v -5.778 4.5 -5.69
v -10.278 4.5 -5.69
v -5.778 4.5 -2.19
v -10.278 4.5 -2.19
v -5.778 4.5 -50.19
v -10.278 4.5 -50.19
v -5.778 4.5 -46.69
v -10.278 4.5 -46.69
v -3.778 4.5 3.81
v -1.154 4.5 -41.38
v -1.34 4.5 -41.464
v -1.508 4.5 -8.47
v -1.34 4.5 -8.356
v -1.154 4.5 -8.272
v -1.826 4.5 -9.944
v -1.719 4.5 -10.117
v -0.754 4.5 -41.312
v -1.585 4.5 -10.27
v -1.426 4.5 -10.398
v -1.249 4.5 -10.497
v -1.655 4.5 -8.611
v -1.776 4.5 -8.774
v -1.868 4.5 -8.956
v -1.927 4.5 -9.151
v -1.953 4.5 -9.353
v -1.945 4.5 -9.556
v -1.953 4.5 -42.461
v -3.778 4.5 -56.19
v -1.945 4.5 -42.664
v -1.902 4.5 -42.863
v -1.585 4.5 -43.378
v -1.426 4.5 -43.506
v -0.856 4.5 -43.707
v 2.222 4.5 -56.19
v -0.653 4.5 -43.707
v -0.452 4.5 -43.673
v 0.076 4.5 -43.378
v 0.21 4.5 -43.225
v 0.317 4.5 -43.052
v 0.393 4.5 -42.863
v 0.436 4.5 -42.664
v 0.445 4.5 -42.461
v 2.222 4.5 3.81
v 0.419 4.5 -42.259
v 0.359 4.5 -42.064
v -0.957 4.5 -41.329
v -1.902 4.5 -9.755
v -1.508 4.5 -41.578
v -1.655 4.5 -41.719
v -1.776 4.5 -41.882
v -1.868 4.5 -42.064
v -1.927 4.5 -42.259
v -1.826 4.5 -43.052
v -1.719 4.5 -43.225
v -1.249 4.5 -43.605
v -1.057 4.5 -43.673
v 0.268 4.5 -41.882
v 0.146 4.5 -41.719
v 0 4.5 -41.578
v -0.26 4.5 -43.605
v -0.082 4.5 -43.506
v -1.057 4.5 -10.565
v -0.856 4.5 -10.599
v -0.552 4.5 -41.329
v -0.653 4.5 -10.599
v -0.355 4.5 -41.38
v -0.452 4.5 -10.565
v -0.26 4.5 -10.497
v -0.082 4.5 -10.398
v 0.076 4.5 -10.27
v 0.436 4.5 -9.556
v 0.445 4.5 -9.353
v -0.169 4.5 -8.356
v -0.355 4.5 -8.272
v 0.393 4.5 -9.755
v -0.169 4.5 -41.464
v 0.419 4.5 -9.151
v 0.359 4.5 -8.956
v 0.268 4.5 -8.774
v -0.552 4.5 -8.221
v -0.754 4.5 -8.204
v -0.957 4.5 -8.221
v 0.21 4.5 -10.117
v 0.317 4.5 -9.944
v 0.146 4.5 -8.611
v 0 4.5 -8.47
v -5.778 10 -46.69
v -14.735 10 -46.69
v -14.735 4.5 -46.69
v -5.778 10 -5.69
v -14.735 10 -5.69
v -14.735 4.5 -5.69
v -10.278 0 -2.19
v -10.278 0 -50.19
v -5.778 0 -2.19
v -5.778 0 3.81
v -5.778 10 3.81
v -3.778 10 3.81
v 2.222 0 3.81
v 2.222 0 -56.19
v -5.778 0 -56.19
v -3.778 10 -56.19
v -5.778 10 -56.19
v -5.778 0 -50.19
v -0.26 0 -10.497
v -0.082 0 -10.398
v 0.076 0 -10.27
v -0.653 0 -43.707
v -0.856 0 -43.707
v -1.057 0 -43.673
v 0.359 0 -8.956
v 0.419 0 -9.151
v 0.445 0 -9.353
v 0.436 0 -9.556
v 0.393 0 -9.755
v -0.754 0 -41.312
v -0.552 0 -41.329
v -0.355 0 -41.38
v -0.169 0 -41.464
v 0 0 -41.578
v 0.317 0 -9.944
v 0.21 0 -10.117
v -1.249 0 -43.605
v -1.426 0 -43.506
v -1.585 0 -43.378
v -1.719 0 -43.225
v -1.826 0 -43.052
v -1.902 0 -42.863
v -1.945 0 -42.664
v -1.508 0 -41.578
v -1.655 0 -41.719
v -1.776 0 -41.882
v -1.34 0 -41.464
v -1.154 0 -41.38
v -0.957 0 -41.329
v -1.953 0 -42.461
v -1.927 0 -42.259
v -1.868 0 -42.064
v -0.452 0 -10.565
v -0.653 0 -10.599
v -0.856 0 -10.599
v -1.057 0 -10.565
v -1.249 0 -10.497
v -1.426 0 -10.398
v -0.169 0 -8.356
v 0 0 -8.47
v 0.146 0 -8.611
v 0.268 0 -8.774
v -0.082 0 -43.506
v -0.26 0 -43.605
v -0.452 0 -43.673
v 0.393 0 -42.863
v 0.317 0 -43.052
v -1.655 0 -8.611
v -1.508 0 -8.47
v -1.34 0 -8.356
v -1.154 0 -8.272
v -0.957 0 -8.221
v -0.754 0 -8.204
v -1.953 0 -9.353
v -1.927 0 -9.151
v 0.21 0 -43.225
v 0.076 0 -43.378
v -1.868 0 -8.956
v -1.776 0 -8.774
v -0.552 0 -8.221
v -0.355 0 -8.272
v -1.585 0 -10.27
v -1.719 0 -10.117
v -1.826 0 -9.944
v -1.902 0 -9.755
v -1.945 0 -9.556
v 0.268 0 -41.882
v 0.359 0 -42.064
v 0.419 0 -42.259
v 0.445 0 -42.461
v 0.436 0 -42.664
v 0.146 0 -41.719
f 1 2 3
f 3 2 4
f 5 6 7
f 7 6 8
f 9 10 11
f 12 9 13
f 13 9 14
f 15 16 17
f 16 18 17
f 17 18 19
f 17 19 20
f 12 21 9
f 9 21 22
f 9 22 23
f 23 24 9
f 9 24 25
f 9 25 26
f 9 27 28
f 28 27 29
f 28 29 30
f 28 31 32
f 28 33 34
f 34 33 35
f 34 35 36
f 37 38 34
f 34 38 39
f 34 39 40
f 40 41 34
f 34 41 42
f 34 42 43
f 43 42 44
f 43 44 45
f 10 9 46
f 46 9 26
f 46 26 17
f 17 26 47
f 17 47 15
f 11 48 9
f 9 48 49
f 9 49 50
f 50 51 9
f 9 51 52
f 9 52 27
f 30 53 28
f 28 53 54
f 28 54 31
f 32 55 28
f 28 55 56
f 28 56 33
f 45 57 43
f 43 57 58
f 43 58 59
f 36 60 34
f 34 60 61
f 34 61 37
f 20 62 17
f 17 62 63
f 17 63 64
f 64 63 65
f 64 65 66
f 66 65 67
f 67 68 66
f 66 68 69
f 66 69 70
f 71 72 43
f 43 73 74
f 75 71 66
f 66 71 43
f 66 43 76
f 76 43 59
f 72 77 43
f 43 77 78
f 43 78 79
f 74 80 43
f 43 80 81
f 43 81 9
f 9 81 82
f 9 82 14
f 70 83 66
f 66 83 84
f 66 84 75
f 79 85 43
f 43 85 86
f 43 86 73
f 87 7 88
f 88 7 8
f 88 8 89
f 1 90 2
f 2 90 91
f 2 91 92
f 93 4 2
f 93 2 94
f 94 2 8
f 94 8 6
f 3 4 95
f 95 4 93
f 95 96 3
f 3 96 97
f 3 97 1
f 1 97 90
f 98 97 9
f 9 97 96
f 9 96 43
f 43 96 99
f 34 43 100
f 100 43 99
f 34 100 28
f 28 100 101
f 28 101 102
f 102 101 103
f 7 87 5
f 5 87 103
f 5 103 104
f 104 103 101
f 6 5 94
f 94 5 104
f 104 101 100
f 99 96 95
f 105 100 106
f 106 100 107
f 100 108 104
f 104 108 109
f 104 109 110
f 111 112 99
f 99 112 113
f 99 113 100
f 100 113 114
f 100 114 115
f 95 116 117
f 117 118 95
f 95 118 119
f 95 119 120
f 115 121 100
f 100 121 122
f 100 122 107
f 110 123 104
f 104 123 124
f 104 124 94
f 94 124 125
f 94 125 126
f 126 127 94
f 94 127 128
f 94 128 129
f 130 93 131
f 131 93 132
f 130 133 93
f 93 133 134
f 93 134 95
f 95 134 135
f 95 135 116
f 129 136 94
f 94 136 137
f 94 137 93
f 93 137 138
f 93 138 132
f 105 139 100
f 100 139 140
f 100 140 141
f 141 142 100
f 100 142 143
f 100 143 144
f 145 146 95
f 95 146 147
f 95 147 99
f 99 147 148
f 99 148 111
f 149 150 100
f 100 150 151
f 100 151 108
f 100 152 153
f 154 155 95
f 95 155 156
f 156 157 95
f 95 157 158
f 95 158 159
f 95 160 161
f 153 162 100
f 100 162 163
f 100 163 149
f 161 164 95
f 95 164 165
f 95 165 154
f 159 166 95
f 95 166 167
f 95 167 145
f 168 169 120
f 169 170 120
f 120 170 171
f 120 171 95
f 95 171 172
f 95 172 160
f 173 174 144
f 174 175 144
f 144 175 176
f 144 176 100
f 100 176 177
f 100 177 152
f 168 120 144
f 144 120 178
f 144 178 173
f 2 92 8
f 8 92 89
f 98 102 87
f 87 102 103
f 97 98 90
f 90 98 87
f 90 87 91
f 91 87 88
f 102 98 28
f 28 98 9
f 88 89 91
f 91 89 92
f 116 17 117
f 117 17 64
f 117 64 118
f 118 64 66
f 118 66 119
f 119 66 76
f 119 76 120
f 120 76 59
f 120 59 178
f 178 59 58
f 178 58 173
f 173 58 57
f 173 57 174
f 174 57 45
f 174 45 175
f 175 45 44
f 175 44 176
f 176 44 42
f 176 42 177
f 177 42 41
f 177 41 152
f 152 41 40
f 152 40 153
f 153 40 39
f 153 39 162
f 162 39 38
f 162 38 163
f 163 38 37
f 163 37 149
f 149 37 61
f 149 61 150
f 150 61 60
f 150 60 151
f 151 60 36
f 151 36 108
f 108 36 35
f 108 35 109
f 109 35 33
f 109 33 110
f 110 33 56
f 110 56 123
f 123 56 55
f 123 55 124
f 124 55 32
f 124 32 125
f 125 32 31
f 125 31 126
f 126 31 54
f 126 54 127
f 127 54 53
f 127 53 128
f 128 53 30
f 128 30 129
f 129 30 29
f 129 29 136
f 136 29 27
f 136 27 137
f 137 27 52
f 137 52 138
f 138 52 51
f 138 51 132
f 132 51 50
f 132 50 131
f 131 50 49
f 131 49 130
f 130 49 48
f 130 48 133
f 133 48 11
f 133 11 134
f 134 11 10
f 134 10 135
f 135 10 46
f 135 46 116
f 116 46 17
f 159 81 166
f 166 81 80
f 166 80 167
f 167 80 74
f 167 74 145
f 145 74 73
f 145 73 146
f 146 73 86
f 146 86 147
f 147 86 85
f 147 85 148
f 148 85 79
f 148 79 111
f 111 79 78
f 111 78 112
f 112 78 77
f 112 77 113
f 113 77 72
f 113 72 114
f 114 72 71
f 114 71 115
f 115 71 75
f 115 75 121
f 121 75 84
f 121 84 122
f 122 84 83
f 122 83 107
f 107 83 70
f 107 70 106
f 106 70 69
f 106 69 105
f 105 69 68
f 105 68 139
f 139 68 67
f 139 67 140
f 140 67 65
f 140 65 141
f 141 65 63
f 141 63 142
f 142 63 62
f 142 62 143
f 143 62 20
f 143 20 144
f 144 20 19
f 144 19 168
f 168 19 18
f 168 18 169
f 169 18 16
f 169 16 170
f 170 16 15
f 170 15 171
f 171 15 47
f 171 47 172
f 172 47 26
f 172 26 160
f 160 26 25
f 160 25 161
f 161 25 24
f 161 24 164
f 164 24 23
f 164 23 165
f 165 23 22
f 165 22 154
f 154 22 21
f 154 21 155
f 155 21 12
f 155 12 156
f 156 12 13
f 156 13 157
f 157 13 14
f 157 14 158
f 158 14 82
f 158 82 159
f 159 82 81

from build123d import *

# Parameters (mm, degrees)
SKETCH3_W            = 4.5
SKETCH3_H            = 48
SKETCH3_W_2          = 8
SKETCH3_H_2          = 60
BOSS_EXTRUDE2_DEPTH  = 4.5
SKETCH4_W            = 5
SKETCH4_H            = 41
BOSS_EXTRUDE3_DEPTH  = 5.5
SKETCH6_W            = 2
SKETCH6_H            = 60
BOSS_EXTRUDE4_DEPTH  = 5.5
SKETCH7_W            = 41
SKETCH7_H            = 5.5
BOSS_EXTRUDE5_DEPTH  = 4
M2_CLEARANCE_SLOT1_D = 2.4


with BuildPart() as part:
    # Sketch3 → Boss-Extrude2 (new body)
    with BuildSketch(Plane(origin=(0, 0, 0), x_dir=(1, 0, 0), z_dir=(0, 1, 0))):
        with Locations((-8.027777778, 26.190445059)):
            Rectangle(SKETCH3_W, SKETCH3_H)
        with Locations((-1.777777778, 26.190445059)):
            Rectangle(SKETCH3_W_2, SKETCH3_H_2)
    extrude(amount=BOSS_EXTRUDE2_DEPTH)

    # Sketch4 → Boss-Extrude3 (add)
    with BuildSketch(Plane(origin=(0, 4.5, 0), x_dir=(1, 0, 0), z_dir=(0, 1, 0))):
        with Locations((-8.23478156, 26.190445059)):
            Rectangle(SKETCH4_W, SKETCH4_H)
    extrude(amount=BOSS_EXTRUDE3_DEPTH)

    # Sketch6 → Boss-Extrude4 (add)
    with BuildSketch(Plane(origin=(0, 4.5, 0), x_dir=(1, 0, 0), z_dir=(0, 1, 0))):
        with Locations((-4.777777778, 26.190445059)):
            Rectangle(SKETCH6_W, SKETCH6_H)
    extrude(amount=BOSS_EXTRUDE4_DEPTH)

    # Sketch7 → Boss-Extrude5 (add)
    with BuildSketch(Plane.ZY.offset(10.73478156)):
        with Locations((-26.190445059, 7.25)):
            Rectangle(SKETCH7_W, SKETCH7_H)
    extrude(amount=BOSS_EXTRUDE5_DEPTH)

    # M2 Clearance Slot1 (through all)
    with Locations(Plane(origin=(-24.675307519, 4.5, -134.803183417), x_dir=(1, 0, 0), z_dir=(0, 1, 0))):
        with Locations((23.920998694, -125.399645606), (23.920998694, -92.291639463)):
            Hole(M2_CLEARANCE_SLOT1_D / 2)


solid = part.part
